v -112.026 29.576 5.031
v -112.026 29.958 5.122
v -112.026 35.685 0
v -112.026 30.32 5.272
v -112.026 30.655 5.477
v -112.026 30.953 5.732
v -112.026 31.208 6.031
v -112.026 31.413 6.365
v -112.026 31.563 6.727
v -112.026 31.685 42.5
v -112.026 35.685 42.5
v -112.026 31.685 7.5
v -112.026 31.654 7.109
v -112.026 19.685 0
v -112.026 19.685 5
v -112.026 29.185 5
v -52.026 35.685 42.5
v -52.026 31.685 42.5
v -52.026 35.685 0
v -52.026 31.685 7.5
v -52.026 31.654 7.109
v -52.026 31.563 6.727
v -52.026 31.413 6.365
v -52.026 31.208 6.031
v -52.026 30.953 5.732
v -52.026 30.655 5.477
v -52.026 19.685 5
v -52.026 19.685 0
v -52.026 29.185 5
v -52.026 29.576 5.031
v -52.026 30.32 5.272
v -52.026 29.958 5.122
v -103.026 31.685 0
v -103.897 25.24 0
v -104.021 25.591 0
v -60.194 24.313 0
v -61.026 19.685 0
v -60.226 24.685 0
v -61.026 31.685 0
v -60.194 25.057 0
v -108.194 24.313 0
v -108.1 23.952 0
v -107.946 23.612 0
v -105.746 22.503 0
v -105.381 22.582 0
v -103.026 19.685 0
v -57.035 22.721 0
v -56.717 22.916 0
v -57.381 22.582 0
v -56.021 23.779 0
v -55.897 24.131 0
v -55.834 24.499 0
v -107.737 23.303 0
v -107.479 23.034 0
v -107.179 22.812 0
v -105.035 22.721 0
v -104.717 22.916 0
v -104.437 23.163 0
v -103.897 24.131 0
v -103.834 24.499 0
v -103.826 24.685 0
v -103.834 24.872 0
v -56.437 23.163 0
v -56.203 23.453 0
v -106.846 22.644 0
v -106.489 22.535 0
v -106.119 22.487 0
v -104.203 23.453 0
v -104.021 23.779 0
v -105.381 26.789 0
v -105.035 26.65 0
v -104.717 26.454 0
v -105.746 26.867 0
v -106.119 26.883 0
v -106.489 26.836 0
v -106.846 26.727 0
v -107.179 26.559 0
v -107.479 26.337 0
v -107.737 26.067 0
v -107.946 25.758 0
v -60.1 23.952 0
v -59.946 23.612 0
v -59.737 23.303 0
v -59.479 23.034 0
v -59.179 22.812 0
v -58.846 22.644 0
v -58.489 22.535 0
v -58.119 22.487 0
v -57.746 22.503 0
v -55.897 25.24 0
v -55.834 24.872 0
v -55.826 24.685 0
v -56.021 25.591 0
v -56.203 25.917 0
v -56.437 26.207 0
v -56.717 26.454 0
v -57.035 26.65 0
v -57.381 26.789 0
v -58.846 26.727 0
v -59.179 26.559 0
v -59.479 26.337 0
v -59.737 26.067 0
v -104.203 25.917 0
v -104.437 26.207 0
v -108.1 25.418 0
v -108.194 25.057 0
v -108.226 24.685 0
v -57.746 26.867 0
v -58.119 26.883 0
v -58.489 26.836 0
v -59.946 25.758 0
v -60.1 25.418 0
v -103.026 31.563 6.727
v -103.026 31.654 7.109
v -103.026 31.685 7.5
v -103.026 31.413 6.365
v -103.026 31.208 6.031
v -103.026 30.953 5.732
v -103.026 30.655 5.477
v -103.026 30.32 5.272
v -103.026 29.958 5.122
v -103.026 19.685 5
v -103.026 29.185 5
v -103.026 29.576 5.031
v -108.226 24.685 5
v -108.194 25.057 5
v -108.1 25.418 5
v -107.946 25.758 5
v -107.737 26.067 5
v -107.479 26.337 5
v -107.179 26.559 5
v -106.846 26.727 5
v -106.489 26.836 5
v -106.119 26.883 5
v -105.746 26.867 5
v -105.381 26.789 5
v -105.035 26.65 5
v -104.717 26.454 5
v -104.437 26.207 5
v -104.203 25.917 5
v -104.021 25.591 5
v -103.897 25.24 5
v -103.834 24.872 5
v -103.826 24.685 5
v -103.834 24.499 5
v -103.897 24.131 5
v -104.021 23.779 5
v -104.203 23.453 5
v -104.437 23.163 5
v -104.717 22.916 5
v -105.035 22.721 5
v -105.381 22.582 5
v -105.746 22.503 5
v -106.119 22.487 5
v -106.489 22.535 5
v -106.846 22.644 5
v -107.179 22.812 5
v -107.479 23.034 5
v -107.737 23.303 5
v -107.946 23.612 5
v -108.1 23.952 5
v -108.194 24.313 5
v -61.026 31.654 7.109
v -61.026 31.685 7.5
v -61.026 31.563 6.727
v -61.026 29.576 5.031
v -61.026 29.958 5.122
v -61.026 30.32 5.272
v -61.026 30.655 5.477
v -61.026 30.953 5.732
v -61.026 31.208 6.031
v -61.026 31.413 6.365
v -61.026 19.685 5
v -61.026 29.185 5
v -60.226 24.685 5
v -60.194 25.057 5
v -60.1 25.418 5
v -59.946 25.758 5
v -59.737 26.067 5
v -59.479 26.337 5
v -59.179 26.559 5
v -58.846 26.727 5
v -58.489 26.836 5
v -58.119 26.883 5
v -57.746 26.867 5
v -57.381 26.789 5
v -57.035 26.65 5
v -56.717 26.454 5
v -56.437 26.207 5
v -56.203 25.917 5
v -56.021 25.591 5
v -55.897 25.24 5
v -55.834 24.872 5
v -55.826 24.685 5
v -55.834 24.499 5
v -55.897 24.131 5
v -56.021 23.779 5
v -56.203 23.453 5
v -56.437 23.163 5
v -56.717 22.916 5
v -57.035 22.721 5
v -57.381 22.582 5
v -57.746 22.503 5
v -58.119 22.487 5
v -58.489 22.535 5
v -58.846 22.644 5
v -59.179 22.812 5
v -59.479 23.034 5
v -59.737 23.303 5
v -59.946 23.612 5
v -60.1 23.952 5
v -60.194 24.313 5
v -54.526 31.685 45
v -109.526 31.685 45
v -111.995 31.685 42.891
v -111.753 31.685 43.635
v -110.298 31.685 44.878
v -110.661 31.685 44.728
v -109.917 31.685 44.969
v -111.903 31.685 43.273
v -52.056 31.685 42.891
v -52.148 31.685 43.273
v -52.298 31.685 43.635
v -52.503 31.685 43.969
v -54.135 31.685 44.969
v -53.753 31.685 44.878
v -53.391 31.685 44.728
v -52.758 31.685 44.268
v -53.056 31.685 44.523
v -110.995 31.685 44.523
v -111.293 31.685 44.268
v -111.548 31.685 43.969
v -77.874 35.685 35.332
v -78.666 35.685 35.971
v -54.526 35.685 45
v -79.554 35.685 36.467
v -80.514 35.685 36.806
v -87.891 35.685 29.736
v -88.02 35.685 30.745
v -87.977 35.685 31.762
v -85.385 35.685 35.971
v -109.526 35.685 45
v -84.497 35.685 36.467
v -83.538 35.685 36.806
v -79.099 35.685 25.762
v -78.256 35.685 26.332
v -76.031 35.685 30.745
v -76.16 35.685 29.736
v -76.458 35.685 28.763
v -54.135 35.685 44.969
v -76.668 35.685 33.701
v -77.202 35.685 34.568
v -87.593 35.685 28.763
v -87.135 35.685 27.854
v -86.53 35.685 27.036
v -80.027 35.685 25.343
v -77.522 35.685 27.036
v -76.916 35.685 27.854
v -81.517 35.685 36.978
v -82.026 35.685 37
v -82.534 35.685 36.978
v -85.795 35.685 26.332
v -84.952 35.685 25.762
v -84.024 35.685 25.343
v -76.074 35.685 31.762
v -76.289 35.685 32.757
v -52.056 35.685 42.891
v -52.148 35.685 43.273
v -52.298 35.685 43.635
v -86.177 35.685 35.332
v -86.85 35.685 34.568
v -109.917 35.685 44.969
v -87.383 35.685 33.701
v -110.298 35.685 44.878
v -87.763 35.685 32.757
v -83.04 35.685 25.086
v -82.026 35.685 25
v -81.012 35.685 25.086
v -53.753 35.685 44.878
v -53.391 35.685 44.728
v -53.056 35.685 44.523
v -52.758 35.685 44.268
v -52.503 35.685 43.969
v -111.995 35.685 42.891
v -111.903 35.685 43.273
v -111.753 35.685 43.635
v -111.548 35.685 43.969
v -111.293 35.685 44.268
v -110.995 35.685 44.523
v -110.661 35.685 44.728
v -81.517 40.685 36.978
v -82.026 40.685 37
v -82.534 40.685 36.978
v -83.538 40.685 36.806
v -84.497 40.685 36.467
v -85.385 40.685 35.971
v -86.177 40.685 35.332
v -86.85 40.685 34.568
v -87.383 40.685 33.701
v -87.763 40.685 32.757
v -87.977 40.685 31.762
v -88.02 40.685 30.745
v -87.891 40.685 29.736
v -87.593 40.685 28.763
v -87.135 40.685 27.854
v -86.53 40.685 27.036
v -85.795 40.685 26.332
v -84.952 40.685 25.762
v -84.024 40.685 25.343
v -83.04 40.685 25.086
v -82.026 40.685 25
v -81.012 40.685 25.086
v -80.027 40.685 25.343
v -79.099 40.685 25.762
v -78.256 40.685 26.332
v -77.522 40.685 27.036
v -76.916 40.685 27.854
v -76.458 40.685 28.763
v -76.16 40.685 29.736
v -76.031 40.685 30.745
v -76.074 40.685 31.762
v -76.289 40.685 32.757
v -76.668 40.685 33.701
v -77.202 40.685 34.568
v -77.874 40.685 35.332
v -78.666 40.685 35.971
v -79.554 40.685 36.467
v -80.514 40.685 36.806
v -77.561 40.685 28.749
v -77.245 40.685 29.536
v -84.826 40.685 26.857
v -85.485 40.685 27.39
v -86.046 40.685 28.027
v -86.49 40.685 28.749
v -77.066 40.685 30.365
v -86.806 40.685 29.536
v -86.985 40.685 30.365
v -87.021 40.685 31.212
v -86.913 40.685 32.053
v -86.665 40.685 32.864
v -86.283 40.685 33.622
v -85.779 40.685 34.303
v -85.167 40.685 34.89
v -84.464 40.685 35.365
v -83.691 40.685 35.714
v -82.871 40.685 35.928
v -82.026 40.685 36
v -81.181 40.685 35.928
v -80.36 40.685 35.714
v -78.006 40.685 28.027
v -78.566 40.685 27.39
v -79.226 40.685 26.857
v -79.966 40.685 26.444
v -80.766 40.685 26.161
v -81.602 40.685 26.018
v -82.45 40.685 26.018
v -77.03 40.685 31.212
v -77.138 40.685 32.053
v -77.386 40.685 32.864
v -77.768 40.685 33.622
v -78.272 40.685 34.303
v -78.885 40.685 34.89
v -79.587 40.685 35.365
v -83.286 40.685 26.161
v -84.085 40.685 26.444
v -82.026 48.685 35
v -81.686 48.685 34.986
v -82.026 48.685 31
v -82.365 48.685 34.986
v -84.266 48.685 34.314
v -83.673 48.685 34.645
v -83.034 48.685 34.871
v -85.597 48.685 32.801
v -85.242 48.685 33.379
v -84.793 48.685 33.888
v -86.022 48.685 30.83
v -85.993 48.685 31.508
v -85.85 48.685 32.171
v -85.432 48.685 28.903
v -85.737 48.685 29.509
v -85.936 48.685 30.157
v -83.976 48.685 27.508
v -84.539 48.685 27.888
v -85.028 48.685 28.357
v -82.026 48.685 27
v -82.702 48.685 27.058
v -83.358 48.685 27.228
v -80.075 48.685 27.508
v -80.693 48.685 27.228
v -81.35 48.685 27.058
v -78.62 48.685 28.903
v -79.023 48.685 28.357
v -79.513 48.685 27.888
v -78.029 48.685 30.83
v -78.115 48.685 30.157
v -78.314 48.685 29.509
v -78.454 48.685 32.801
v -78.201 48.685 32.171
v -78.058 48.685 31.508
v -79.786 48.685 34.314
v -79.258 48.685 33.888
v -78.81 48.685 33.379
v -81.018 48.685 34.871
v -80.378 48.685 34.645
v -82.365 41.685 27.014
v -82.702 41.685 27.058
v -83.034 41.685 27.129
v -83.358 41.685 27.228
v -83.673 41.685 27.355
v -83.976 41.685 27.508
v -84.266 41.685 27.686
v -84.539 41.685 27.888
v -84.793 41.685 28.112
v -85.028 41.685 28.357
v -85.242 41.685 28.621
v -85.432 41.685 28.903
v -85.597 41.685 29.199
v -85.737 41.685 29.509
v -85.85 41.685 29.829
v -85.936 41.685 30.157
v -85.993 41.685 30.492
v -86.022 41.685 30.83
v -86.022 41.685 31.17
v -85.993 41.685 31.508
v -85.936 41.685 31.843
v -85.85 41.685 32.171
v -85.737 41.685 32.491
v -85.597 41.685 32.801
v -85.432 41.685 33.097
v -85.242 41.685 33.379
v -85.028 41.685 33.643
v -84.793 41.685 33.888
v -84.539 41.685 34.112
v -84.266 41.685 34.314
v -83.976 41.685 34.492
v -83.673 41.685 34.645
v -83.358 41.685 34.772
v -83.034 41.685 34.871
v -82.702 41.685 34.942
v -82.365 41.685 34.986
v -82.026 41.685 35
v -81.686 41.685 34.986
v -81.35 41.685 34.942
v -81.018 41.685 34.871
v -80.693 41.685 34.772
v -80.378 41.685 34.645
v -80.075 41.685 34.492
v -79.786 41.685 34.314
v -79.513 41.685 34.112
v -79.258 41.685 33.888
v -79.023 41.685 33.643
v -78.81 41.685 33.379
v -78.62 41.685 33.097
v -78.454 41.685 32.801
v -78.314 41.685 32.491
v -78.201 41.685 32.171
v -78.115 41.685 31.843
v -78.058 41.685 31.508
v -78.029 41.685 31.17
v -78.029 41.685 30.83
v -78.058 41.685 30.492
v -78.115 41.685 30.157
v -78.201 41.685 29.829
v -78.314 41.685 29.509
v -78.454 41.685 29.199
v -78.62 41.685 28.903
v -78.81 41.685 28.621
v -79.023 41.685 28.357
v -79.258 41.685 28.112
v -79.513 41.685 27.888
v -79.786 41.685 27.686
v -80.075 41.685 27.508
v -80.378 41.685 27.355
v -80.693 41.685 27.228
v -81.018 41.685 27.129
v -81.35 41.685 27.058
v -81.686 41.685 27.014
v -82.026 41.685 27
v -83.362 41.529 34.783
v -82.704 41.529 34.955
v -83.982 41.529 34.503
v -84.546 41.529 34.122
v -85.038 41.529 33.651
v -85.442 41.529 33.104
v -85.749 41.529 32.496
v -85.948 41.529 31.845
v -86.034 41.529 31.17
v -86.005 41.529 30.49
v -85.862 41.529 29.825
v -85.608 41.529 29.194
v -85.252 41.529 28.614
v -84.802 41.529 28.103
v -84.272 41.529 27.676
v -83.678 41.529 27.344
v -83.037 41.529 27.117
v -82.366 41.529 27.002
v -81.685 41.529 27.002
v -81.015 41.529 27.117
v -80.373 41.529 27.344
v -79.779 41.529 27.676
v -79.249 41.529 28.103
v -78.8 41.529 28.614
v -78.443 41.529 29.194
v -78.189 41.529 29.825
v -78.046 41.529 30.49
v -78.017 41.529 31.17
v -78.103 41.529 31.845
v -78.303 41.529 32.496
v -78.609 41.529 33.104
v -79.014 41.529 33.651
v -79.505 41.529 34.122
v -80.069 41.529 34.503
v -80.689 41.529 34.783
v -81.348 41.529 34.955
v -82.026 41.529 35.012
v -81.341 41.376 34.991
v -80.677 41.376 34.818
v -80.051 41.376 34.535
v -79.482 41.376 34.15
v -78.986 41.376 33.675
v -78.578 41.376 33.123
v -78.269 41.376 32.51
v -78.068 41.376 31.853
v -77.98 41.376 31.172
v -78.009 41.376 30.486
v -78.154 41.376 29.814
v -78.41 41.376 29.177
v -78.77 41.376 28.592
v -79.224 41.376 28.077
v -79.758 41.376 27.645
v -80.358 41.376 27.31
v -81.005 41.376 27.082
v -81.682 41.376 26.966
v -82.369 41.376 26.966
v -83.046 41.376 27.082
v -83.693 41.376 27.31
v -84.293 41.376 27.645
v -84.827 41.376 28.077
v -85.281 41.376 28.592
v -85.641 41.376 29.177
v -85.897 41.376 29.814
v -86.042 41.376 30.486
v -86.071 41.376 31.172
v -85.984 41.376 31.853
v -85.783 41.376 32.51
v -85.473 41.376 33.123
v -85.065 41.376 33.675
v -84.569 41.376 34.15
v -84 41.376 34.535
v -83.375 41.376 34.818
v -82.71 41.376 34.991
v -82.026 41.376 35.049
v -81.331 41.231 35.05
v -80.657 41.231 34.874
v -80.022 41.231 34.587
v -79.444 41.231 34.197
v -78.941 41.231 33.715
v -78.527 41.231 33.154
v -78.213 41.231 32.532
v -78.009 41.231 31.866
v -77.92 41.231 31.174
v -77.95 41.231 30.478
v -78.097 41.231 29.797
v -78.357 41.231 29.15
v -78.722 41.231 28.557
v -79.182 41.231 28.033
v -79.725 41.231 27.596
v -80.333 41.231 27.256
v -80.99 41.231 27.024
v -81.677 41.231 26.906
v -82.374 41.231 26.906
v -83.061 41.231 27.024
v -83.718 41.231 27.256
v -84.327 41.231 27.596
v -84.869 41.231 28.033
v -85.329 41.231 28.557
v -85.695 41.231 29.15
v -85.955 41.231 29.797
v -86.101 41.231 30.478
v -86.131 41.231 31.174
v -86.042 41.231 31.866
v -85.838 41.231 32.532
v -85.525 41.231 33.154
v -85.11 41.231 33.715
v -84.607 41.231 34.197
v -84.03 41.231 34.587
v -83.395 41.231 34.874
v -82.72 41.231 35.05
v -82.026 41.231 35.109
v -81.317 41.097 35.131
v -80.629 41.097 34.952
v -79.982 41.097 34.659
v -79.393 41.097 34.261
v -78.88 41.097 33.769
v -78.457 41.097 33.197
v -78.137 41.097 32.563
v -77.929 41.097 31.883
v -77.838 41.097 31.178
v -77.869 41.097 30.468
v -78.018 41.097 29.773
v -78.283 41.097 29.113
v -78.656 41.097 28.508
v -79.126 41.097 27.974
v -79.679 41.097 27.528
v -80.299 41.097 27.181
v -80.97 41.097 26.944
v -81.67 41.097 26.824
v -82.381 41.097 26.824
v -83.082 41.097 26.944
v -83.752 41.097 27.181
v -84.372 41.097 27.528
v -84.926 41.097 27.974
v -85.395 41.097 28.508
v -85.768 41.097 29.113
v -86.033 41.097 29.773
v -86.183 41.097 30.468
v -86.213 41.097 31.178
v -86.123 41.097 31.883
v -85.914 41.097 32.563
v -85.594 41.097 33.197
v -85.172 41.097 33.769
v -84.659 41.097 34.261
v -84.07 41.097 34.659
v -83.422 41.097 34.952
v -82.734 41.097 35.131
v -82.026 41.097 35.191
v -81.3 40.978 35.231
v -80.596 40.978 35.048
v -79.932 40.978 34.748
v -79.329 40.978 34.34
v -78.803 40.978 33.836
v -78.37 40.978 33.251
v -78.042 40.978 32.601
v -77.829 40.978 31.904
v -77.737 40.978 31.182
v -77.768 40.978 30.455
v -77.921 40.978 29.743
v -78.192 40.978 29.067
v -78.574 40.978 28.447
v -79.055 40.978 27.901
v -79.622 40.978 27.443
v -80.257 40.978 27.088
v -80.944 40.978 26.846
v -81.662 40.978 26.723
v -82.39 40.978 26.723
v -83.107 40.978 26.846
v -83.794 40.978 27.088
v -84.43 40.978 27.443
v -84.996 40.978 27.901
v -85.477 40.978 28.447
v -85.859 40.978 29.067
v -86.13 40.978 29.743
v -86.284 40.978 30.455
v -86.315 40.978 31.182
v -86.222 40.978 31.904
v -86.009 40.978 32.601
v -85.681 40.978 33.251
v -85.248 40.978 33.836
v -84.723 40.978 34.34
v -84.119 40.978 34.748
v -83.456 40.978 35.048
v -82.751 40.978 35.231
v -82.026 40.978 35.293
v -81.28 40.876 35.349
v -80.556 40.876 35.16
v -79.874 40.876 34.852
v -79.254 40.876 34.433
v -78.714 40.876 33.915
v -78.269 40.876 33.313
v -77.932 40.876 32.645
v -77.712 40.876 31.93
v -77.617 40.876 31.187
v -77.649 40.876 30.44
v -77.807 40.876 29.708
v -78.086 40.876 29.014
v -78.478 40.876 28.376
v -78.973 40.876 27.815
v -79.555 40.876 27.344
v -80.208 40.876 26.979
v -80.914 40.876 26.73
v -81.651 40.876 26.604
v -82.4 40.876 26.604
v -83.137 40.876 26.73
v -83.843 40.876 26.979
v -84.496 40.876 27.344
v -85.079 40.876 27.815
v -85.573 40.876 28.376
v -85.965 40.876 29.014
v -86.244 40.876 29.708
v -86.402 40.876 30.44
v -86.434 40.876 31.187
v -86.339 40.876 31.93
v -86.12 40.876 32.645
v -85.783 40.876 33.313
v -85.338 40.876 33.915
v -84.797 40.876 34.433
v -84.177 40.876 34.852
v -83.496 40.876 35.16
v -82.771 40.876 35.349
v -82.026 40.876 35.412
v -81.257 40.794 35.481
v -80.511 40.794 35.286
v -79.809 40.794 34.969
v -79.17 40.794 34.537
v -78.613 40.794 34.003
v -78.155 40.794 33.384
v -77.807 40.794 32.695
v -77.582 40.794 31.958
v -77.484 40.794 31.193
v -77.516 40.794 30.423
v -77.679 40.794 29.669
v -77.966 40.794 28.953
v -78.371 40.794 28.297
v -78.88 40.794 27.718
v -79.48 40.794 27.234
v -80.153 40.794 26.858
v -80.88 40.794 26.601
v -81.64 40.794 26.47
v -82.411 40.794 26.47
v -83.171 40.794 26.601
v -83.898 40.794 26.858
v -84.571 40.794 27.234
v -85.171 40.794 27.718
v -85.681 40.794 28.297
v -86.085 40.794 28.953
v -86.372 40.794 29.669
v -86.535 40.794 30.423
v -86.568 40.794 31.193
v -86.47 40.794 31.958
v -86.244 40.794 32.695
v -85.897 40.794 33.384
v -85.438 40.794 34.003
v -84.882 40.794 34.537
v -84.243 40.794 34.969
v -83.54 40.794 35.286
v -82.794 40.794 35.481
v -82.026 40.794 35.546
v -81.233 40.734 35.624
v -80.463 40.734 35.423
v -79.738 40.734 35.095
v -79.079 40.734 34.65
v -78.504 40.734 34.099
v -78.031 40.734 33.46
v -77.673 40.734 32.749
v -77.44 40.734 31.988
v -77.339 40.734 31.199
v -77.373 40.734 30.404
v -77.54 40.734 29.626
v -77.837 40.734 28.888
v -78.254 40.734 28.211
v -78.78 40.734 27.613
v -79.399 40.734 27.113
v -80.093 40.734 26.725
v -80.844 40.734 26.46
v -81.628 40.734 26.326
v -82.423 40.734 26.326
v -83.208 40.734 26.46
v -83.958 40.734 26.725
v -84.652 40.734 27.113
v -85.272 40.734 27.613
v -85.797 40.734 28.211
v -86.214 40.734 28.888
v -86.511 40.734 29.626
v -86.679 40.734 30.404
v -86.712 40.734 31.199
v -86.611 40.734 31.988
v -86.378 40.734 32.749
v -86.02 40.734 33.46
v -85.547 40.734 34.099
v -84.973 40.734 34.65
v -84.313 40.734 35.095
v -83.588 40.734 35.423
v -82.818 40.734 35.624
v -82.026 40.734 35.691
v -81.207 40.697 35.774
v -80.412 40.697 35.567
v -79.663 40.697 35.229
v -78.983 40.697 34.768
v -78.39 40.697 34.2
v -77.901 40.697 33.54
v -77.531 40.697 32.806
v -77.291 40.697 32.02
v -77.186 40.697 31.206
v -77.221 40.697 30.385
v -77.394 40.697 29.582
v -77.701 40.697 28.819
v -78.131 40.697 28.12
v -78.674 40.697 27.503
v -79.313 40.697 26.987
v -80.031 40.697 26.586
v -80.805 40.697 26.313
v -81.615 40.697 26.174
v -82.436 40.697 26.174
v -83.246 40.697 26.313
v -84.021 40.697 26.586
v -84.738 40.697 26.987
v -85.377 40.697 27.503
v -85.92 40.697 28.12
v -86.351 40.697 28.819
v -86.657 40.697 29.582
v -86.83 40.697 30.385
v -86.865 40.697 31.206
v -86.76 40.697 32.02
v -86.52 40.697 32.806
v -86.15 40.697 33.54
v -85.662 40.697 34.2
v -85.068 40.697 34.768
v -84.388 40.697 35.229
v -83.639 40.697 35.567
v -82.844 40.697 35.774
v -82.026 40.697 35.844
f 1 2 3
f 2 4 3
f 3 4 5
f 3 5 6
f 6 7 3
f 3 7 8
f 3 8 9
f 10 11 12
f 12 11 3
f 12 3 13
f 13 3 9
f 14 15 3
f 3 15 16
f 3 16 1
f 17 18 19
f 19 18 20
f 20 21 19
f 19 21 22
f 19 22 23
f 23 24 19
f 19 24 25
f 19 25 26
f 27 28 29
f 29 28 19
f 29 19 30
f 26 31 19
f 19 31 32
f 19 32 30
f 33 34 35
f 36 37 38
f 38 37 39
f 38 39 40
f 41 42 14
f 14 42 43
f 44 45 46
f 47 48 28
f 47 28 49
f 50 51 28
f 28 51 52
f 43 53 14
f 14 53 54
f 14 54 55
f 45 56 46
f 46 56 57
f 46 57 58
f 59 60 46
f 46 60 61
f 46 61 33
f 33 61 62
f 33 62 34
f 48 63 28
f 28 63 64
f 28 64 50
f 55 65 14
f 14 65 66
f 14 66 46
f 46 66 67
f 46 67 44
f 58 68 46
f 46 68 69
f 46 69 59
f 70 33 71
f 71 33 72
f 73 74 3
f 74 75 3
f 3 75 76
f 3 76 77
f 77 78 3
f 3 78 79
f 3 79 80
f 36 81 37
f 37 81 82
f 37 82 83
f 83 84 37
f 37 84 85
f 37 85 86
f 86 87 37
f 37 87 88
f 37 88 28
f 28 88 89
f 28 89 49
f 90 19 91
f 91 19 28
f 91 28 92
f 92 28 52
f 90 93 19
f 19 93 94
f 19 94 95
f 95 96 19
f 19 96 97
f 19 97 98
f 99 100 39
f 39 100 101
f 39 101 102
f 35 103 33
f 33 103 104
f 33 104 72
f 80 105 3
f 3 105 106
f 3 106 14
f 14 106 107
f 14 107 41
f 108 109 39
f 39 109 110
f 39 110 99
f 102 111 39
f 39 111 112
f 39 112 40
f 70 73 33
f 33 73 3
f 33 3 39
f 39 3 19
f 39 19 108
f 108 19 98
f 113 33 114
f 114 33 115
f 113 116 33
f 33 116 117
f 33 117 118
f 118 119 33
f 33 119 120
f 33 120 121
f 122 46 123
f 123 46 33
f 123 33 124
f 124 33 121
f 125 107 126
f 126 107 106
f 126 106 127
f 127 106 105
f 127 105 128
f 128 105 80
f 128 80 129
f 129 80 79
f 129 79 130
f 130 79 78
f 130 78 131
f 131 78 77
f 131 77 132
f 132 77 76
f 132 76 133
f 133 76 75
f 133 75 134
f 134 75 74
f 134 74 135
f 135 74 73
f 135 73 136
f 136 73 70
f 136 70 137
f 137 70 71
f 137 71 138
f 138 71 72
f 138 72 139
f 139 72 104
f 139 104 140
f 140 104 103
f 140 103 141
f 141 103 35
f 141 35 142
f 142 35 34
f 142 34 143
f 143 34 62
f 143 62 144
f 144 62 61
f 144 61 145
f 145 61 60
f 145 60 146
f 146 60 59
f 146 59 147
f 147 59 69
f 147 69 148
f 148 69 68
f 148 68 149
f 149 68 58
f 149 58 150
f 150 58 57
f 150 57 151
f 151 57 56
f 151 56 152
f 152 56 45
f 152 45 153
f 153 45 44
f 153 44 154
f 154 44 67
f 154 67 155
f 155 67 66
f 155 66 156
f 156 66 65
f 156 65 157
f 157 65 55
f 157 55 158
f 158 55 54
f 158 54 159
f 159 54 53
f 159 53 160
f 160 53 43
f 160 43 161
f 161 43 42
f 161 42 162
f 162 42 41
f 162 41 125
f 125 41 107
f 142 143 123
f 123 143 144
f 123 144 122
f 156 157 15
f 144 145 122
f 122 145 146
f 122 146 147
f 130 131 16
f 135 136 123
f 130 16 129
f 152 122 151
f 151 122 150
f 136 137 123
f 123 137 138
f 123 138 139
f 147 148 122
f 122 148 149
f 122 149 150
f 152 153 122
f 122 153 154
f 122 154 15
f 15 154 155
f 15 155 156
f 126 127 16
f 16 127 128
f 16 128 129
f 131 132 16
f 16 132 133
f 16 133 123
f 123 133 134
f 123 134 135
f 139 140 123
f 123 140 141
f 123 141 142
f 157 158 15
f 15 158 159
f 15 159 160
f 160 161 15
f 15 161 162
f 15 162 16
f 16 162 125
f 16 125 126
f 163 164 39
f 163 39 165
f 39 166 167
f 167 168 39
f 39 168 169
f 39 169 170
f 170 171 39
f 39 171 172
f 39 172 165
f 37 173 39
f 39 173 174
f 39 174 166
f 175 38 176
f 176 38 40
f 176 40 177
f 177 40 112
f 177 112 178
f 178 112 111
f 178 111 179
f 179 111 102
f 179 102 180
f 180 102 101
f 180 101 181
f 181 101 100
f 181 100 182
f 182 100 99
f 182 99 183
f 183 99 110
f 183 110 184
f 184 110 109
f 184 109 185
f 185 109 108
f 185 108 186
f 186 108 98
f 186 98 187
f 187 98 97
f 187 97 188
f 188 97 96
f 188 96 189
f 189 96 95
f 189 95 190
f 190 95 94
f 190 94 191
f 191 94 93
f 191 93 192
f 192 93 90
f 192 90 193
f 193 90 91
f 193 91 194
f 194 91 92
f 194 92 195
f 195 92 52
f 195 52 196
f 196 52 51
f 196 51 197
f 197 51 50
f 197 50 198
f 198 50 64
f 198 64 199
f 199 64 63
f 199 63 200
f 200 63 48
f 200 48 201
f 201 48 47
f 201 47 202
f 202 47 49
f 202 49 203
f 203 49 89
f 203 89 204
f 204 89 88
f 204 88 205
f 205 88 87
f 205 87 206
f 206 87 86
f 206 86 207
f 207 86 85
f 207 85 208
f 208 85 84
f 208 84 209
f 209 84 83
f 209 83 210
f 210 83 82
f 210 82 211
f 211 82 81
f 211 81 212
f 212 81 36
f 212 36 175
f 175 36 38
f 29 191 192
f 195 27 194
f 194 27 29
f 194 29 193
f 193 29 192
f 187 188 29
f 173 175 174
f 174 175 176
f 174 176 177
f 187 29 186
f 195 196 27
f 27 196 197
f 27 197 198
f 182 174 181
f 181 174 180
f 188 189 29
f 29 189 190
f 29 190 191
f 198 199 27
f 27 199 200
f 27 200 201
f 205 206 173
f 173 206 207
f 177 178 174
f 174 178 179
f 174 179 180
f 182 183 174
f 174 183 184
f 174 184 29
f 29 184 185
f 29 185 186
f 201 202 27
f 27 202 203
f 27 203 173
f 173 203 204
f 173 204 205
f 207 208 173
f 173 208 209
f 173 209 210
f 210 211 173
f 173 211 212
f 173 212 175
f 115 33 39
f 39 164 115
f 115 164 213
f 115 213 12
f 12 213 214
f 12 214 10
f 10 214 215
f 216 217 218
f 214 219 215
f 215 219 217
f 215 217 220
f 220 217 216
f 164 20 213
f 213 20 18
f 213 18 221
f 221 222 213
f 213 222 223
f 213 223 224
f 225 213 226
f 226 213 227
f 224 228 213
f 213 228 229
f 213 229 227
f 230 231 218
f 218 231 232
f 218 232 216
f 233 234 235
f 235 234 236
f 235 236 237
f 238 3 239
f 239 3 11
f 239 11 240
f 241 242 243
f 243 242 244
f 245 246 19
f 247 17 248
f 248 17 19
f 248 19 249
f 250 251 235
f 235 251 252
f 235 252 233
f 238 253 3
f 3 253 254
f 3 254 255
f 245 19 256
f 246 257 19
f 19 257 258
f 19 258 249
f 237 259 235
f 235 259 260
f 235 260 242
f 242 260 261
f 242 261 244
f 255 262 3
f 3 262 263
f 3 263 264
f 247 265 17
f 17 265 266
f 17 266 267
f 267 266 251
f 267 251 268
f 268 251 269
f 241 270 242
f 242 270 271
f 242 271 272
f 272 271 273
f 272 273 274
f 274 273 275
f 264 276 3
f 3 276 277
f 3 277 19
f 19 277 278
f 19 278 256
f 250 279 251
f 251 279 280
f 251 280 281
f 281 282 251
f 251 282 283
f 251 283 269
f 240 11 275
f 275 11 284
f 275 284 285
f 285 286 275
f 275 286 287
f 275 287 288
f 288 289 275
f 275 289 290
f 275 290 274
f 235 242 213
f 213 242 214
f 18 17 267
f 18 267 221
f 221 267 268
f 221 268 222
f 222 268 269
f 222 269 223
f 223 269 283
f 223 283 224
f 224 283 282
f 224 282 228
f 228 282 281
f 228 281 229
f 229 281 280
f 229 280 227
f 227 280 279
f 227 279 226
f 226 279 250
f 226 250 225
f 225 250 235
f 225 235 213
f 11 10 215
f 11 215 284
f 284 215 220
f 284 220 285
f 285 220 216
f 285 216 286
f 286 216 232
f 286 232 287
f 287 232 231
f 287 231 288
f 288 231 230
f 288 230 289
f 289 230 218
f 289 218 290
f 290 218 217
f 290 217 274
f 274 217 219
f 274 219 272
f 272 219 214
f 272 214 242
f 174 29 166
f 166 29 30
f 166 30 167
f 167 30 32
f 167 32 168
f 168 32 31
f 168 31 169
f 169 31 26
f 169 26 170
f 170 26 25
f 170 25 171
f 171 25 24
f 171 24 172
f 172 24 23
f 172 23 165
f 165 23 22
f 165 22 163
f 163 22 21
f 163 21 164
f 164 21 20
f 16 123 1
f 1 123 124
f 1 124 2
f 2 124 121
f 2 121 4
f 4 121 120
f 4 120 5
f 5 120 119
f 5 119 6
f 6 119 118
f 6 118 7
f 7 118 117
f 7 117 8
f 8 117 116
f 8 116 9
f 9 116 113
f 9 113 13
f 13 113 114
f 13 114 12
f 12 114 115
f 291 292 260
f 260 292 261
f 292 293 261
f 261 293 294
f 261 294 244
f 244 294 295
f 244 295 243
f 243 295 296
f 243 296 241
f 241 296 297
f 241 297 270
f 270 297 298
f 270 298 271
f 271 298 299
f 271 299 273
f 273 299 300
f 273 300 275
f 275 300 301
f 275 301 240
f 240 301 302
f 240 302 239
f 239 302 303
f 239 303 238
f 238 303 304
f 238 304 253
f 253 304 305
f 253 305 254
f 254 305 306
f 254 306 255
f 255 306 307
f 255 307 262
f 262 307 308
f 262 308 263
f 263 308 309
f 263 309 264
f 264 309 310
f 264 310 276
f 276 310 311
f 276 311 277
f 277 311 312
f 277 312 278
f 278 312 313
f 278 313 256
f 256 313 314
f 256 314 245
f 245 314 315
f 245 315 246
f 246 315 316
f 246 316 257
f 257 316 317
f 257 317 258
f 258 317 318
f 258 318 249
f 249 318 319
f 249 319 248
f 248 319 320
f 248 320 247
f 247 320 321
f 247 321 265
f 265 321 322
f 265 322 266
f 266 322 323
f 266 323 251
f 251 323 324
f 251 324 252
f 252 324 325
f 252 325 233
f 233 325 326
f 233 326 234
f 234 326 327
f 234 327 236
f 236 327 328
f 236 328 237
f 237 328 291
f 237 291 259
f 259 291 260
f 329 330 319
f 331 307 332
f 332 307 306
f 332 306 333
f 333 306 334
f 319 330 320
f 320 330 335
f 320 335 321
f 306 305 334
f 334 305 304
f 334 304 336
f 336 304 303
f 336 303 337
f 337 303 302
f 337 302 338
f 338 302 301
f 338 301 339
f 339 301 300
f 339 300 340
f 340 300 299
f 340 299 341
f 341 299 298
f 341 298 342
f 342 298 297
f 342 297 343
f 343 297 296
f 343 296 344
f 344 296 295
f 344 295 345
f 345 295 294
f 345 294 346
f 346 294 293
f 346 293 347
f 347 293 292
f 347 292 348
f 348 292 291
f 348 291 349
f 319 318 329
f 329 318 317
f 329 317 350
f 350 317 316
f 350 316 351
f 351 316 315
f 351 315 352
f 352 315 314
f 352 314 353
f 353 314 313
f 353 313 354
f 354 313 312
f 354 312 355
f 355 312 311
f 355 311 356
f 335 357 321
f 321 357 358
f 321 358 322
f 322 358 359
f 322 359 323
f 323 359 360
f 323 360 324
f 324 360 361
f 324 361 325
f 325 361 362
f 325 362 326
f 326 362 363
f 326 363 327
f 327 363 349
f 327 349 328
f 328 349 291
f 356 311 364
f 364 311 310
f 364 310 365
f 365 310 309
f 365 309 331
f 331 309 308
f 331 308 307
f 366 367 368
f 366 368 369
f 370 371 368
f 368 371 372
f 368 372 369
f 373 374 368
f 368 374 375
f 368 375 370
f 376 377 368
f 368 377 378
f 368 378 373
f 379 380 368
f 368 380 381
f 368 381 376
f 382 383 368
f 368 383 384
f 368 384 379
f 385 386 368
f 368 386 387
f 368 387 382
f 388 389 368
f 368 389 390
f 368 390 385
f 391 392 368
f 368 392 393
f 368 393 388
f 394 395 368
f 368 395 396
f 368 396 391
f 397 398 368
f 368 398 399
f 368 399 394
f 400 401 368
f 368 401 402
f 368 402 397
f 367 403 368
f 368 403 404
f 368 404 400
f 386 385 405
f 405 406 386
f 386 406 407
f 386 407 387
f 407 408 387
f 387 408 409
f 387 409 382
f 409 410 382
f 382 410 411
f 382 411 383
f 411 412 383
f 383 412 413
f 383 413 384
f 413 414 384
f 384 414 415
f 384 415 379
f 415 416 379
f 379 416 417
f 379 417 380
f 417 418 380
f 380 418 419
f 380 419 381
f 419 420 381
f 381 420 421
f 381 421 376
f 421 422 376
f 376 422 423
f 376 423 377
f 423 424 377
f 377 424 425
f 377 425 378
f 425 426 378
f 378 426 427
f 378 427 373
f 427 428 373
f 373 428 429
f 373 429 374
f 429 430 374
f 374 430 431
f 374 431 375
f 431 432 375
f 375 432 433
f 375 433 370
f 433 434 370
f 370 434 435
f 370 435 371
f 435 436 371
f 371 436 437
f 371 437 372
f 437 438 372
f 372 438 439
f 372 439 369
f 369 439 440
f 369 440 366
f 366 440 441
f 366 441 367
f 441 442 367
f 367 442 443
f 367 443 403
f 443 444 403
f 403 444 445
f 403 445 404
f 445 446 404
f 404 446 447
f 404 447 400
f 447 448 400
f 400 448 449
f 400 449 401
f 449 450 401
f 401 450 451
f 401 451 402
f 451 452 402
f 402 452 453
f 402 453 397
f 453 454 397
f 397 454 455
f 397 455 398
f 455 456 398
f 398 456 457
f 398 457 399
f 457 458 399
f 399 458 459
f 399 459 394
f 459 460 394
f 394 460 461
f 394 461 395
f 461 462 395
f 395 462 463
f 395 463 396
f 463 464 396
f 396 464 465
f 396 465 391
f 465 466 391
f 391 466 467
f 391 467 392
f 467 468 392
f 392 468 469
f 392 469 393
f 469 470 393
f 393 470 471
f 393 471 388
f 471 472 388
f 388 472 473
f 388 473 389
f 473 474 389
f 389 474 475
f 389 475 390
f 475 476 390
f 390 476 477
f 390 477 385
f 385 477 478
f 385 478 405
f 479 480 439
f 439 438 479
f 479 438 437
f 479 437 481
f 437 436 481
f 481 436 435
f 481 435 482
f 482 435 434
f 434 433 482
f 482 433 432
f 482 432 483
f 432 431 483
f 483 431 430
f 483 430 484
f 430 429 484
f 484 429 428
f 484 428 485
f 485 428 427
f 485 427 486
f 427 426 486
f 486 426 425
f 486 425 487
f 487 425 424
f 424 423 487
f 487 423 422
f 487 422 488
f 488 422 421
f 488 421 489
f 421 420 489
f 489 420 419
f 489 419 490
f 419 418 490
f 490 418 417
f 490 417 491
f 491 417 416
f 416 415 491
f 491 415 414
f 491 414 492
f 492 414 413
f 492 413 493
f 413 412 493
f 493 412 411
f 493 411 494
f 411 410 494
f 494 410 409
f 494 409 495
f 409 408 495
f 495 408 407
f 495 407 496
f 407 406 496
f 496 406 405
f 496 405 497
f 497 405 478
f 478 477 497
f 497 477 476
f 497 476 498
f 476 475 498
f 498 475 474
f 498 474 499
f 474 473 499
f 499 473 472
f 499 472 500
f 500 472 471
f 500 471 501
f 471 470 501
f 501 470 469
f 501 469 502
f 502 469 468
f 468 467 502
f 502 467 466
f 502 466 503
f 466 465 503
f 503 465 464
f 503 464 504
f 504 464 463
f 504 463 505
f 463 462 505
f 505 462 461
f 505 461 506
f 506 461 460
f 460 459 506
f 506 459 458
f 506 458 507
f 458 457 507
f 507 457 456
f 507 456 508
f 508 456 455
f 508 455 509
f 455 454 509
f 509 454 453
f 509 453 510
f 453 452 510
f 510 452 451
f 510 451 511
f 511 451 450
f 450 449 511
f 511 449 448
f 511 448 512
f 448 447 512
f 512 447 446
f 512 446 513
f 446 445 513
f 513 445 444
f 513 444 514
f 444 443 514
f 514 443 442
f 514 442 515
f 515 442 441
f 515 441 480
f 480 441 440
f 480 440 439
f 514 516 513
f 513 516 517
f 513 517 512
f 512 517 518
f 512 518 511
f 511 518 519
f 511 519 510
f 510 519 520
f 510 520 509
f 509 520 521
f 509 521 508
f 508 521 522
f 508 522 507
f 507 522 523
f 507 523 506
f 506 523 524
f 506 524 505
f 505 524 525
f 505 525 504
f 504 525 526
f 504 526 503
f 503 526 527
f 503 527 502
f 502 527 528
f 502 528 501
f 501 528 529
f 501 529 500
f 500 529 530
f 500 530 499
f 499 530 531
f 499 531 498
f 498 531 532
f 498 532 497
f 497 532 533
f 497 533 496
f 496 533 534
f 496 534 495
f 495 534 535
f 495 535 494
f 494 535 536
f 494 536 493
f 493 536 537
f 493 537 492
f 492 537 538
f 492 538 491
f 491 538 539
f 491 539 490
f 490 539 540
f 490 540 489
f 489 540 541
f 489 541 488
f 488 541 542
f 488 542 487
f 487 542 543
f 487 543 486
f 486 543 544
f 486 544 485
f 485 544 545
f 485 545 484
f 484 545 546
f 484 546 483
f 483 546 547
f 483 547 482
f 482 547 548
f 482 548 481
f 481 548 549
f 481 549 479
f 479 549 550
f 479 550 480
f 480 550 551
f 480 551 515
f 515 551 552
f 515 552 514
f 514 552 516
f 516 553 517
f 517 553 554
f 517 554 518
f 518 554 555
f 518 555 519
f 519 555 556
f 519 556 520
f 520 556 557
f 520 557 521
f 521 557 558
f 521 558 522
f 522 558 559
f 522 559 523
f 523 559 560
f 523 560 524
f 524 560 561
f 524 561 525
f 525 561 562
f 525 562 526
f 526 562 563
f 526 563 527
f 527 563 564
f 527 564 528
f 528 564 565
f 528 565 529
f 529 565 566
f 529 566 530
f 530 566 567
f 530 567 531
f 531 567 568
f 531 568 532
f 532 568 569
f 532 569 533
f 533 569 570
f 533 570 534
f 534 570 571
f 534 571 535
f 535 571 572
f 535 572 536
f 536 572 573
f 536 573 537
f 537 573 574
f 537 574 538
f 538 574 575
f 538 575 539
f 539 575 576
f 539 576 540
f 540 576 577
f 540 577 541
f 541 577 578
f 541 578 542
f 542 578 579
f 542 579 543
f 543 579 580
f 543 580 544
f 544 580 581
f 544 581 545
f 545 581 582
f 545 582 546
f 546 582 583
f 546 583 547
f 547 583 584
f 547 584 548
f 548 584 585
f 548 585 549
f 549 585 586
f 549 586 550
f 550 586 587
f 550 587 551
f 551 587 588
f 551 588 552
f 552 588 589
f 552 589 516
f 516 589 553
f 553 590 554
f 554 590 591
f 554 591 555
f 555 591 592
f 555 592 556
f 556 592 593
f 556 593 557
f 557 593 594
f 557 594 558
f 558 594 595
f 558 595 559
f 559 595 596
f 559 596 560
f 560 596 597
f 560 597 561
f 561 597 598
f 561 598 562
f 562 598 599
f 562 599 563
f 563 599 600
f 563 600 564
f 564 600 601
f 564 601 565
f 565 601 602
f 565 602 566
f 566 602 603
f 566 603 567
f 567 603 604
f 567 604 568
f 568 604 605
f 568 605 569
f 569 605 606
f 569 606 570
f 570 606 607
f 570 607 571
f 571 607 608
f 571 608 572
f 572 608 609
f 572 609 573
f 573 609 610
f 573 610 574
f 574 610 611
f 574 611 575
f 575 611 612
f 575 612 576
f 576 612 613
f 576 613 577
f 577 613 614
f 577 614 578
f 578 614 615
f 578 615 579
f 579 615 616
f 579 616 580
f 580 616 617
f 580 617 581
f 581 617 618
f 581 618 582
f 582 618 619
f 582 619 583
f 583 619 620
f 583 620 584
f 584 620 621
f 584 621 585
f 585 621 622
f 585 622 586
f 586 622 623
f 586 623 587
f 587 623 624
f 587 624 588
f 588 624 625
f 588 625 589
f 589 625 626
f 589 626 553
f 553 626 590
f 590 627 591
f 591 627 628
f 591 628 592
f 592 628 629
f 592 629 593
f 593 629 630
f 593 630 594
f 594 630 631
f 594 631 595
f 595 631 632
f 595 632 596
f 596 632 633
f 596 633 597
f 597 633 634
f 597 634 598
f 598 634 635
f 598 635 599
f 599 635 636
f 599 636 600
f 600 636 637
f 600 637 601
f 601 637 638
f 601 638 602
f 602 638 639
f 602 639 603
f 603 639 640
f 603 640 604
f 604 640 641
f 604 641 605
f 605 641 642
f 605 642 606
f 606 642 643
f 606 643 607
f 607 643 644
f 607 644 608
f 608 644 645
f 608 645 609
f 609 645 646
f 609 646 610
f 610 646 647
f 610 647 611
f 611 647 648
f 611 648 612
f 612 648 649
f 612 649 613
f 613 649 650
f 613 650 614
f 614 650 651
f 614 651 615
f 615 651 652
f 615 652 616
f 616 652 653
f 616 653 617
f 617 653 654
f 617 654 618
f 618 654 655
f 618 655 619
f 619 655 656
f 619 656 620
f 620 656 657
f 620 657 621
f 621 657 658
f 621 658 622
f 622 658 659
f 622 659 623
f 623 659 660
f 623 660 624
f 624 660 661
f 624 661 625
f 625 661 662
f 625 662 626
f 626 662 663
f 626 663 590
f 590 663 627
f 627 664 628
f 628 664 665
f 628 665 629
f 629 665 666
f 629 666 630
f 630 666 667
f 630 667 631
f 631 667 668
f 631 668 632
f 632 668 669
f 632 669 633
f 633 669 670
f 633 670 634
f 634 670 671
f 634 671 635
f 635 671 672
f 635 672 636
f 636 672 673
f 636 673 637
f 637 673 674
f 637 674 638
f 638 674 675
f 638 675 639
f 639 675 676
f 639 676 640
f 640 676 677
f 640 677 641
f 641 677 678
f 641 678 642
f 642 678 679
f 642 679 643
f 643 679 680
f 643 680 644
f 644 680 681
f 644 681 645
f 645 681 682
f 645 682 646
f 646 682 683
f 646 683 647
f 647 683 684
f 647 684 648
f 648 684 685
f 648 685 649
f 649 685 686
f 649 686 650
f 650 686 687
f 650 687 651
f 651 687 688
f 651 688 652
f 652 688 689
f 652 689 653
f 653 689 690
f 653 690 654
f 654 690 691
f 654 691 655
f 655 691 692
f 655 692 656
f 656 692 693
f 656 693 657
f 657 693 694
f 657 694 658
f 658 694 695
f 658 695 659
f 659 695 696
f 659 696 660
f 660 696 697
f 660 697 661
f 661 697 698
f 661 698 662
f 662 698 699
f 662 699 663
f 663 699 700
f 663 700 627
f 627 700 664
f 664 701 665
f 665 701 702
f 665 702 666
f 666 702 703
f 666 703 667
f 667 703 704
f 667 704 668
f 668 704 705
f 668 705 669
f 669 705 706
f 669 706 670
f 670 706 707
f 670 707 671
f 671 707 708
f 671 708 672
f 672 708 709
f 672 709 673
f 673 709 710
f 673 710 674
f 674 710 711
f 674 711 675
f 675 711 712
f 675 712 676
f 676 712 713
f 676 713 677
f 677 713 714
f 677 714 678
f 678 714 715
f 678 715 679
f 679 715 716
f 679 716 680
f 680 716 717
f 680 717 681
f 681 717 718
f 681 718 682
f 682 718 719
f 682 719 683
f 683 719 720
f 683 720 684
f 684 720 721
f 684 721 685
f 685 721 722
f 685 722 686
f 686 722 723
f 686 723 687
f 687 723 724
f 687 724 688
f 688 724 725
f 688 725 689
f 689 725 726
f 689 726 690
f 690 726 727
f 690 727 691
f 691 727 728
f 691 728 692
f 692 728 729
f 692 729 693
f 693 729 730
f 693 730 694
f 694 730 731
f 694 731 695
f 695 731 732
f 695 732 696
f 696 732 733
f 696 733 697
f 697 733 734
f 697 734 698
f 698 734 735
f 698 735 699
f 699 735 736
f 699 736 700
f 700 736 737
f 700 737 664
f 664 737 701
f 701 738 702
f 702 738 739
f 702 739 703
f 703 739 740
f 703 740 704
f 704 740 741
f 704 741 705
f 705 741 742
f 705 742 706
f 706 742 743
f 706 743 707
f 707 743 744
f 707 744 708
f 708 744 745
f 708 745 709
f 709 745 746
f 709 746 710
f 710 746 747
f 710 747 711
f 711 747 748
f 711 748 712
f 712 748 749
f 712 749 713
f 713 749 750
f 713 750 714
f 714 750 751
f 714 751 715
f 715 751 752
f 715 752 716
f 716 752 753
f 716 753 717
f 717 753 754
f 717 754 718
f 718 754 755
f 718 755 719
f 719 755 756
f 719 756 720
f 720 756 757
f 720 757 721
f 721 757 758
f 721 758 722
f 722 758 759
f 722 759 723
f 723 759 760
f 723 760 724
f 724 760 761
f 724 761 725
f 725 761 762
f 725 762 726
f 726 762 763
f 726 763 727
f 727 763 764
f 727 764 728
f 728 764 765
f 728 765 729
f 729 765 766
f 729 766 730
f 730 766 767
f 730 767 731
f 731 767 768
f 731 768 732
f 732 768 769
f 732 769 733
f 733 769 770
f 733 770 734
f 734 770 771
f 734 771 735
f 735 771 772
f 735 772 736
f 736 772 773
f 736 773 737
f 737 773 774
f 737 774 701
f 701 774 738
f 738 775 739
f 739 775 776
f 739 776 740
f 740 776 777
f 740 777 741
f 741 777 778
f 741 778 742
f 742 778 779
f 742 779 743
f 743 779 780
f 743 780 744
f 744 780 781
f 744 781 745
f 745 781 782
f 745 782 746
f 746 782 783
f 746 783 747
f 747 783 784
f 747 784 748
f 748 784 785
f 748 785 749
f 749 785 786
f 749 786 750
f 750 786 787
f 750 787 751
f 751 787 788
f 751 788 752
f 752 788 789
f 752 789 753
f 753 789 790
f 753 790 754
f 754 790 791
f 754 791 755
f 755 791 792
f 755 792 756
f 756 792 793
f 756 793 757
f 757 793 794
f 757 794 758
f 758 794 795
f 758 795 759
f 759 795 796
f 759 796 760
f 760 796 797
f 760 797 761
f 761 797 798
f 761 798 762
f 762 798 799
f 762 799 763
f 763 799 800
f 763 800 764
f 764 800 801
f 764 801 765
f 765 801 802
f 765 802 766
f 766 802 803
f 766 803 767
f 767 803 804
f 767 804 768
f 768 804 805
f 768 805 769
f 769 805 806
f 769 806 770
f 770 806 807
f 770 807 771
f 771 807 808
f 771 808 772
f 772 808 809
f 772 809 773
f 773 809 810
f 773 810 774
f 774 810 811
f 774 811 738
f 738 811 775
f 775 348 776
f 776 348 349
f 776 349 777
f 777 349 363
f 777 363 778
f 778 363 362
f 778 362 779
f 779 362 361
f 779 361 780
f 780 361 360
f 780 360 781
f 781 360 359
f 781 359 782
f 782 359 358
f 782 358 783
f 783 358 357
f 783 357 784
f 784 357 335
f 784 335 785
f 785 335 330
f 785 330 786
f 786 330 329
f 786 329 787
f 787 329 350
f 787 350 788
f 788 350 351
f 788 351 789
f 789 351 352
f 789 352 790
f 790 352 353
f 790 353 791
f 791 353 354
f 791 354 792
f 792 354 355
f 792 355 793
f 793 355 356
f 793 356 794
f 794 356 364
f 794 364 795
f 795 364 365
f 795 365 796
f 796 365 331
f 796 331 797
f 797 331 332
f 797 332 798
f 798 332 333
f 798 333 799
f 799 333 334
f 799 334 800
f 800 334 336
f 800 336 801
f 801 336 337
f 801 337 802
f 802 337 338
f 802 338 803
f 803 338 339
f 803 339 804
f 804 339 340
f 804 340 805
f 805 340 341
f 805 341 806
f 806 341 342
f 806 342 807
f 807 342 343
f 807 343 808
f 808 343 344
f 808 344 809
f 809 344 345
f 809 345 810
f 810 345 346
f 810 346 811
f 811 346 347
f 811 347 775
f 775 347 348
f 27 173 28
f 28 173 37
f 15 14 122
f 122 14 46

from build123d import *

# Parameters (mm, degrees)
SKETCH1_W           = 60
SKETCH1_H           = 4
BOSS_EXTRUDE1_DEPTH = 45
SKETCH1_3_W         = 9
SKETCH1_3_H         = 24
SKETCH1_3_R         = 2.2
BOSS_EXTRUDE2_DEPTH = 5
SKETCH2_R           = 3
SKETCH2_R_2         = 1.6
CUT_EXTRUDE1_DEPTH  = 124.088359511
BOSS_EXTRUDE3_DEPTH = 45
FILLET1_R           = 2.5
FILLET3_R           = 2.5
SKETCH3_R           = 4
BOSS_EXTRUDE4_DEPTH = 13
SKETCH4_R           = 6
BOSS_EXTRUDE5_DEPTH = 5
FILLET4_R           = 1
SKETCH6_W           = 45
SKETCH6_H           = 16
CUT_EXTRUDE2_DEPTH  = 90.416141614


with BuildPart() as part:
    # Sketch1 → Boss-Extrude1 (new body)
    with BuildSketch(Plane.XY):
        with Locations((-82.025641026, 5.685176195)):
            Rectangle(SKETCH1_W, SKETCH1_H)
    extrude(amount=BOSS_EXTRUDE1_DEPTH)

    # Sketch1<3> → Boss-Extrude2 (add)
    # profile 1 of 2: a face of its own
    with BuildSketch(Plane.XY):
        with Locations((-107.525641026, 19.685176195)):
            Rectangle(SKETCH1_3_W, SKETCH1_3_H)
        with Locations((-106.025641026, 14.685176195)):
            Circle(SKETCH1_3_R, mode=Mode.SUBTRACT)
        with Locations((-106.025641026, 24.685176195)):
            Circle(SKETCH1_3_R, mode=Mode.SUBTRACT)
    # profile 2 of 2: a face of its own
    with BuildSketch(Plane.XY):
        with Locations((-56.525641026, 19.685176195)):
            Rectangle(SKETCH1_3_W, SKETCH1_3_H)
        with Locations((-58.025641026, 14.685176195)):
            Circle(SKETCH1_3_R, mode=Mode.SUBTRACT)
        with Locations((-58.025641026, 24.685176195)):
            Circle(SKETCH1_3_R, mode=Mode.SUBTRACT)
    extrude(amount=BOSS_EXTRUDE2_DEPTH)

    # Sketch2 → Cut-Extrude1 (cut, through all)
    with BuildSketch(Plane(origin=(0, 7.685176195, 0), x_dir=(1, 0, 0), z_dir=(0, 1, 0))):
        with Locations((-82.025641026, -31)):
            Circle(SKETCH2_R)
        with Locations((-77.025641026, -26)):
            Circle(SKETCH2_R_2)
        with Locations((-87.025641026, -26)):
            Circle(SKETCH2_R_2)
        with Locations((-77.025641026, -36)):
            Circle(SKETCH2_R_2)
        with Locations((-87.025641026, -36)):
            Circle(SKETCH2_R_2)
    extrude(amount=-CUT_EXTRUDE1_DEPTH, mode=Mode.SUBTRACT)

    # Sketch1<4> → Boss-Extrude3 (add)
    with BuildSketch(Plane.XY):
        Polygon((-112.025641026, 35.685176195), (-112.025641026, 31.685176195), (-103.025641026, 31.685176195), (-61.025641026, 31.685176195), (-52.025641026, 31.685176195), (-52.025641026, 35.685176195), align=None)
    extrude(amount=BOSS_EXTRUDE3_DEPTH)

    # Fillet1
    fillet1_edges = [part.edges().sort_by_distance(p)[0] for p in [
        (-52.025641026, 5.685176195, 45),
        (-112.025641026, 5.685176195, 45),
        (-52.025641026, 33.685176195, 45),
        (-112.025641026, 33.685176195, 45),
    ]]
    fillet(fillet1_edges, radius=FILLET1_R)

    # Fillet3
    fillet3_edges = [part.edges().sort_by_distance(p)[0] for p in [
        (-107.525641026, 7.685176195, 5),
        (-56.525641026, 7.685176195, 5),
        (-56.525641026, 31.685176195, 5),
        (-107.525641026, 31.685176195, 5),
    ]]
    fillet(fillet3_edges, radius=FILLET3_R)

    # Sketch3 → Boss-Extrude4 (add)
    with BuildSketch(Plane(origin=(0, 35.685176195, 0), x_dir=(1, 0, 0), z_dir=(0, 1, 0))):
        with Locations((-82.025641026, -31)):
            Circle(SKETCH3_R)
    extrude(amount=BOSS_EXTRUDE4_DEPTH)

    # Sketch4 → Boss-Extrude5 (add)
    with BuildSketch(Plane(origin=(0, 35.685176195, 0), x_dir=(1, 0, 0), z_dir=(0, 1, 0))):
        with Locations((-82.025641026, -31)):
            Circle(SKETCH4_R)
    extrude(amount=BOSS_EXTRUDE5_DEPTH)

    # Fillet4
    fillet4_edges = [part.edges().sort_by_distance(p)[0] for p in [
        (-86.025641026, 40.685176195, 31),
    ]]
    fillet(fillet4_edges, radius=FILLET4_R)

    # Sketch6 → Cut-Extrude2 (cut, through all)
    with BuildSketch(Plane(origin=(-52.025641026, 0, 0), x_dir=(0, 0, -1), z_dir=(1, 0, 0))):
        with Locations((-22.5, 11.685176195)):
            Rectangle(SKETCH6_W, SKETCH6_H)
    extrude(amount=-CUT_EXTRUDE2_DEPTH, mode=Mode.SUBTRACT)


solid = part.part
